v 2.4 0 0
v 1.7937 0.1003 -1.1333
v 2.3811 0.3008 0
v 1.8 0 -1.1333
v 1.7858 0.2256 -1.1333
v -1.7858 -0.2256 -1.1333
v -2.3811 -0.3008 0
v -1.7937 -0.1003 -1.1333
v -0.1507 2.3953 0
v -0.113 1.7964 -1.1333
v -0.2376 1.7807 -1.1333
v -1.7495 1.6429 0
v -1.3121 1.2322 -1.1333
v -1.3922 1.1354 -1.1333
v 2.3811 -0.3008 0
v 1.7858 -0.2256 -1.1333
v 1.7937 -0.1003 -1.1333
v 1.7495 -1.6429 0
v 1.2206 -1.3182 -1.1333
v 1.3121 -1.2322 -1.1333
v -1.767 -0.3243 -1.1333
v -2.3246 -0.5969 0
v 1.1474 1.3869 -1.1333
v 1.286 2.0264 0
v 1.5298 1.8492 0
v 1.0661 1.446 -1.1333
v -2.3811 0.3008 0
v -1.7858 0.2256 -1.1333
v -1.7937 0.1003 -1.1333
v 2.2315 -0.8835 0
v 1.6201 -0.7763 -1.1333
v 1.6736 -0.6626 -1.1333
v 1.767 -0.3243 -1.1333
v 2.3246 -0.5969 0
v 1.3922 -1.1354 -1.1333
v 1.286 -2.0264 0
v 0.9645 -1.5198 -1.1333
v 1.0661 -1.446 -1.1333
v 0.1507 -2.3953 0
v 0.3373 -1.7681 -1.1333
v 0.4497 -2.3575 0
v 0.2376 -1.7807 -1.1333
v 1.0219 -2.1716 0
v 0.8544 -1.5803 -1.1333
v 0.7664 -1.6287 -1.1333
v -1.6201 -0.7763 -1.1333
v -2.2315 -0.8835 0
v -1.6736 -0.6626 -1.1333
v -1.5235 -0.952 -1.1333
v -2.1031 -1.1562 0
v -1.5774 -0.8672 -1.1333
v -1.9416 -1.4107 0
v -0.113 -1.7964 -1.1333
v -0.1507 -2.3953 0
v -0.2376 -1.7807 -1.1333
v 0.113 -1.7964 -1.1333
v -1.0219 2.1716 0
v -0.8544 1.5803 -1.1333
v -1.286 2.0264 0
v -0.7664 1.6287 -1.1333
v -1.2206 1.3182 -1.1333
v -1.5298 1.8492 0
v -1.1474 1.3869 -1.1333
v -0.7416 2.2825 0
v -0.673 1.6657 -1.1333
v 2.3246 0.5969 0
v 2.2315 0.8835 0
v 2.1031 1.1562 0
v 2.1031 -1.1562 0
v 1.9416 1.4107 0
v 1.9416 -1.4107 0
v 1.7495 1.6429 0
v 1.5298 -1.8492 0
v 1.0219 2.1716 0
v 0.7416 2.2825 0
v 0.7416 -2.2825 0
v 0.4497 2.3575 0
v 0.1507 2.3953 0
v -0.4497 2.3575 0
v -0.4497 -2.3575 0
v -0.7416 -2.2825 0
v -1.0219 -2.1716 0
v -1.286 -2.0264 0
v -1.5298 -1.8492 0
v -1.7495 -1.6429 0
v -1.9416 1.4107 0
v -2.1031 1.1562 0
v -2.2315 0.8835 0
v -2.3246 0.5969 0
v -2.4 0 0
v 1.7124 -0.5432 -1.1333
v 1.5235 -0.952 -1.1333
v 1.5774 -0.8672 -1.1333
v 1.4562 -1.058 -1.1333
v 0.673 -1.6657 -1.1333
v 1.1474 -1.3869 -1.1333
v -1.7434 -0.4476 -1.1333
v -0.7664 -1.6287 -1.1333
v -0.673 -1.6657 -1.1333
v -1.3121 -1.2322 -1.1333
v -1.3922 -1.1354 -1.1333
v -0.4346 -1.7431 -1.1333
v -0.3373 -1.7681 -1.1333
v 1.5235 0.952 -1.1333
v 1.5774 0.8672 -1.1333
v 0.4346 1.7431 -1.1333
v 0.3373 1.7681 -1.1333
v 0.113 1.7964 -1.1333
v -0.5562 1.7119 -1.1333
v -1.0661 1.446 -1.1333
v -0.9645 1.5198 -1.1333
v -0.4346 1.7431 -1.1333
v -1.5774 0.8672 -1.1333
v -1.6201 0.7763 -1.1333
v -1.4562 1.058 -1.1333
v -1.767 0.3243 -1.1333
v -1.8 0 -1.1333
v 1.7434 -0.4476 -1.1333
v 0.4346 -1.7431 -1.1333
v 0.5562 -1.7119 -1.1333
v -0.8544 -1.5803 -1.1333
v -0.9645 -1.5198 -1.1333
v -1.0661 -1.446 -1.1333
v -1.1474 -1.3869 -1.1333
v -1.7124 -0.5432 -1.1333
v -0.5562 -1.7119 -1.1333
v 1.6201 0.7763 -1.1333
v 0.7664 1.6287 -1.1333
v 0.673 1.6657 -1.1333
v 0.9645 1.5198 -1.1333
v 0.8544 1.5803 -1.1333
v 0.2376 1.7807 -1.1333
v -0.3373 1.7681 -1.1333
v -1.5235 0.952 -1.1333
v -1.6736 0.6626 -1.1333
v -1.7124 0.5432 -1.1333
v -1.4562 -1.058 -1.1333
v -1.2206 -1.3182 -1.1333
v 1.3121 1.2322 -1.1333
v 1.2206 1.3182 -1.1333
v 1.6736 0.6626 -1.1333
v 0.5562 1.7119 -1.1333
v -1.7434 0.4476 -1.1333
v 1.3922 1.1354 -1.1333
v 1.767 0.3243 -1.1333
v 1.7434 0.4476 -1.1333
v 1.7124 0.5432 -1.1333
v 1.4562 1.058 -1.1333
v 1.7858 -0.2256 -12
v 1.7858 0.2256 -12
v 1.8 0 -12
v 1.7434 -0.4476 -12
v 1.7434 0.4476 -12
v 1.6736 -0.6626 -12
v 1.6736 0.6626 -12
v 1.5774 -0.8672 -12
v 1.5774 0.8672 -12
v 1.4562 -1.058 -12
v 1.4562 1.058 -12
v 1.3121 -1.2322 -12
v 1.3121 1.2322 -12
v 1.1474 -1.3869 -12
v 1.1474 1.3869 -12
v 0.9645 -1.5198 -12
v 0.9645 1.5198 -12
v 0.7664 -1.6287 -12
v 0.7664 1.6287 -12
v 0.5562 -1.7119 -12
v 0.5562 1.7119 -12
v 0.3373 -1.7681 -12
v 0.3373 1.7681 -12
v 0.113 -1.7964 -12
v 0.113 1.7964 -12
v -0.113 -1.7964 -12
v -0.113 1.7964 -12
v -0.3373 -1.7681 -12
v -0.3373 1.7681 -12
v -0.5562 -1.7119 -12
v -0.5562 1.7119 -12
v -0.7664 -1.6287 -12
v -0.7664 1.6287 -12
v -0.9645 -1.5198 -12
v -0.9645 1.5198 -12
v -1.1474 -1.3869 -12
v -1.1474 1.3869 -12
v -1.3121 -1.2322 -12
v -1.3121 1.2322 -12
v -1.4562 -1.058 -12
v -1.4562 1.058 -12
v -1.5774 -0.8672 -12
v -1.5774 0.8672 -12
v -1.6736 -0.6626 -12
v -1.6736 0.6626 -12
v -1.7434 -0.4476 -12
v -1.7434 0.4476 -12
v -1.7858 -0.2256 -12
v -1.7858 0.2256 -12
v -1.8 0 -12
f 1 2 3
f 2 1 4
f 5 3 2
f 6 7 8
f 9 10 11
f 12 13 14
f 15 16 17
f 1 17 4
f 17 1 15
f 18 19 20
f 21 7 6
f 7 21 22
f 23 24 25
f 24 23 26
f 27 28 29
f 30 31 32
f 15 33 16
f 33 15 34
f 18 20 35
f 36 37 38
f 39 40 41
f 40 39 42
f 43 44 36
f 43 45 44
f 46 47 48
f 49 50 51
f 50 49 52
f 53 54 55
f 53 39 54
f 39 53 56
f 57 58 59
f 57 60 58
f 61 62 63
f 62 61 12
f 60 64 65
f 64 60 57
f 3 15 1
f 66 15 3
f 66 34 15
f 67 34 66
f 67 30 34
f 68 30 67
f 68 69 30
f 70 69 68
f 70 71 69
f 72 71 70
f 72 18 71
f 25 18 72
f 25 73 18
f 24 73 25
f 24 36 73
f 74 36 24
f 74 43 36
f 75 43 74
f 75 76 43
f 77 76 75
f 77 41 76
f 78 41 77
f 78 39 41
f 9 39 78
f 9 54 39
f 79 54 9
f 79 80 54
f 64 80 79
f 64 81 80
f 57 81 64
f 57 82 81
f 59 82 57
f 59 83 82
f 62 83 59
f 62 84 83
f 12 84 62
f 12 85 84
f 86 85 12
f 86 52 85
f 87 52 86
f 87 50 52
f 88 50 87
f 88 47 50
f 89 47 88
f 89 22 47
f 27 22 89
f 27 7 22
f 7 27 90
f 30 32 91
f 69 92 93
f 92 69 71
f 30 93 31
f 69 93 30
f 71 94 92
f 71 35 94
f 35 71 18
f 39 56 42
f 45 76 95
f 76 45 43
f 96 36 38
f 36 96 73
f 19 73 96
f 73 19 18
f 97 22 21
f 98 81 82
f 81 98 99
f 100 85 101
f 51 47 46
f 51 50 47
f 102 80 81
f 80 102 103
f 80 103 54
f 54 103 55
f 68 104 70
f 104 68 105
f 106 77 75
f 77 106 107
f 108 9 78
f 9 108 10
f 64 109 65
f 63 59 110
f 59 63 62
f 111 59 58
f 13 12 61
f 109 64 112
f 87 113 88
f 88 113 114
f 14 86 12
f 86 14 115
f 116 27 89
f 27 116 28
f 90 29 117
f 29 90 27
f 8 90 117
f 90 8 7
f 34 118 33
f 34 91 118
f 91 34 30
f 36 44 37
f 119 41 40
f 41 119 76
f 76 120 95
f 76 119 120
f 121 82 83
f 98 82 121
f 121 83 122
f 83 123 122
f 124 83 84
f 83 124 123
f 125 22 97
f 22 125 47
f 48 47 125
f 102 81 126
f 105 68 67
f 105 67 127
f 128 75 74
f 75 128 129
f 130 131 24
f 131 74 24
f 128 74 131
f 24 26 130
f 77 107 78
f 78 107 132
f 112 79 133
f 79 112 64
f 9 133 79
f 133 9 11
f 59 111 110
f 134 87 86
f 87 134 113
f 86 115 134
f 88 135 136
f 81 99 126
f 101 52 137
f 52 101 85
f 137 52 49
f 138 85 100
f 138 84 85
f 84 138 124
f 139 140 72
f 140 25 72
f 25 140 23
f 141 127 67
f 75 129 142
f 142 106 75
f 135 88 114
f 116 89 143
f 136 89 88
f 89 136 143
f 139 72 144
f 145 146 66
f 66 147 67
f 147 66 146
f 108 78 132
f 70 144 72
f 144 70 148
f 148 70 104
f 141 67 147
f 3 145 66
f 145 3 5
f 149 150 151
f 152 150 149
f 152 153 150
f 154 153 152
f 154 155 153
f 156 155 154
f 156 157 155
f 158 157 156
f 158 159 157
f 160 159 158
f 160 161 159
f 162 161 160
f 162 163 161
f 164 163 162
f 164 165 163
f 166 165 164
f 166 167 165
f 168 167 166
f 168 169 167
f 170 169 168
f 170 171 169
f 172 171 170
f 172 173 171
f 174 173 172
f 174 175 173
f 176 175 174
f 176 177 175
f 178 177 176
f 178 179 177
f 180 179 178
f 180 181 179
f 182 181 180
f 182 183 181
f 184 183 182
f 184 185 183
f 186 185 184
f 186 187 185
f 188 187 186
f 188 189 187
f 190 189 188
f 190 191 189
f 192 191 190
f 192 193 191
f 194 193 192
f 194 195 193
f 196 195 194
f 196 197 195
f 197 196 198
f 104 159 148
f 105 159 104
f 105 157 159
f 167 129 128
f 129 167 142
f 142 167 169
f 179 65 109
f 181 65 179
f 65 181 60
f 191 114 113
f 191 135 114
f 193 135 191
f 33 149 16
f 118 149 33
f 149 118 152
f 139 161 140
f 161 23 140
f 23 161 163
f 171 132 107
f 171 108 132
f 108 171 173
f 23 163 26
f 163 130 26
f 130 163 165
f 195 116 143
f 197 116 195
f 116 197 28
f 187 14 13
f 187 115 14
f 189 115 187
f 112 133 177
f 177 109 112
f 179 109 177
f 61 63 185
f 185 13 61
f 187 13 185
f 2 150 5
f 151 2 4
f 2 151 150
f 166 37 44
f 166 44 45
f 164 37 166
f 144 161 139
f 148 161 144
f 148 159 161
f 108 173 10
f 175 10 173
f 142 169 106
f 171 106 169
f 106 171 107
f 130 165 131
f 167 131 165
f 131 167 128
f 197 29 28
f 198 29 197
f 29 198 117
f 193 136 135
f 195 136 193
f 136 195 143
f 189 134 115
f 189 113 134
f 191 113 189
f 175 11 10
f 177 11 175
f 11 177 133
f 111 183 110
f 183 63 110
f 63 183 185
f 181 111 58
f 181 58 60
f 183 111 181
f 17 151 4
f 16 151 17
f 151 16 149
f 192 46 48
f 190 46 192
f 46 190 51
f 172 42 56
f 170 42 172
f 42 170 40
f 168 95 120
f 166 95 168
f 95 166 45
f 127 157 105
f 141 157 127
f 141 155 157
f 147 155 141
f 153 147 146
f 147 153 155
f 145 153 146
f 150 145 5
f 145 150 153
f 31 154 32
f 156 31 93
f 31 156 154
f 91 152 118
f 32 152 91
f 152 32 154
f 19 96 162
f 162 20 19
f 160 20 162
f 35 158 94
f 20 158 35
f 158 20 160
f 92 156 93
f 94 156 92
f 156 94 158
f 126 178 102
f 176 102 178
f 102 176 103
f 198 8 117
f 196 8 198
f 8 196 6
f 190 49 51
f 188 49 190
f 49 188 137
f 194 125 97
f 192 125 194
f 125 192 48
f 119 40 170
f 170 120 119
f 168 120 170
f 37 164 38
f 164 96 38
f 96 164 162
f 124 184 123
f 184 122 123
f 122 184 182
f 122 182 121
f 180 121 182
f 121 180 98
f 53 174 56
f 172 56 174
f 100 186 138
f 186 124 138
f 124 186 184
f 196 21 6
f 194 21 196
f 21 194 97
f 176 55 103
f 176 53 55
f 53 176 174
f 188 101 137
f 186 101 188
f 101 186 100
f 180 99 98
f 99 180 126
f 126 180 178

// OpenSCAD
$fn = 50;


difference() {
	union() {
		translate(v = [0, 0, 0]) {
			rotate(a = [0, 0, 0]) {
				difference() {
					union() {
						translate(v = [0, 0, -1.7000000000]) {
							cylinder(h = 1.7000000000, r1 = 1.5000000000, r2 = 2.4000000000);
						}
						translate(v = [0, 0, -12.0000000000]) {
							cylinder(h = 12, r = 1.5000000000);
						}
						translate(v = [0, 0, -12.0000000000]) {
							cylinder(h = 12, r = 1.8000000000);
						}
						translate(v = [0, 0, -12.0000000000]) {
							cylinder(h = 12, r = 1.5000000000);
						}
					}
					union();
				}
			}
		}
	}
	union();
}
